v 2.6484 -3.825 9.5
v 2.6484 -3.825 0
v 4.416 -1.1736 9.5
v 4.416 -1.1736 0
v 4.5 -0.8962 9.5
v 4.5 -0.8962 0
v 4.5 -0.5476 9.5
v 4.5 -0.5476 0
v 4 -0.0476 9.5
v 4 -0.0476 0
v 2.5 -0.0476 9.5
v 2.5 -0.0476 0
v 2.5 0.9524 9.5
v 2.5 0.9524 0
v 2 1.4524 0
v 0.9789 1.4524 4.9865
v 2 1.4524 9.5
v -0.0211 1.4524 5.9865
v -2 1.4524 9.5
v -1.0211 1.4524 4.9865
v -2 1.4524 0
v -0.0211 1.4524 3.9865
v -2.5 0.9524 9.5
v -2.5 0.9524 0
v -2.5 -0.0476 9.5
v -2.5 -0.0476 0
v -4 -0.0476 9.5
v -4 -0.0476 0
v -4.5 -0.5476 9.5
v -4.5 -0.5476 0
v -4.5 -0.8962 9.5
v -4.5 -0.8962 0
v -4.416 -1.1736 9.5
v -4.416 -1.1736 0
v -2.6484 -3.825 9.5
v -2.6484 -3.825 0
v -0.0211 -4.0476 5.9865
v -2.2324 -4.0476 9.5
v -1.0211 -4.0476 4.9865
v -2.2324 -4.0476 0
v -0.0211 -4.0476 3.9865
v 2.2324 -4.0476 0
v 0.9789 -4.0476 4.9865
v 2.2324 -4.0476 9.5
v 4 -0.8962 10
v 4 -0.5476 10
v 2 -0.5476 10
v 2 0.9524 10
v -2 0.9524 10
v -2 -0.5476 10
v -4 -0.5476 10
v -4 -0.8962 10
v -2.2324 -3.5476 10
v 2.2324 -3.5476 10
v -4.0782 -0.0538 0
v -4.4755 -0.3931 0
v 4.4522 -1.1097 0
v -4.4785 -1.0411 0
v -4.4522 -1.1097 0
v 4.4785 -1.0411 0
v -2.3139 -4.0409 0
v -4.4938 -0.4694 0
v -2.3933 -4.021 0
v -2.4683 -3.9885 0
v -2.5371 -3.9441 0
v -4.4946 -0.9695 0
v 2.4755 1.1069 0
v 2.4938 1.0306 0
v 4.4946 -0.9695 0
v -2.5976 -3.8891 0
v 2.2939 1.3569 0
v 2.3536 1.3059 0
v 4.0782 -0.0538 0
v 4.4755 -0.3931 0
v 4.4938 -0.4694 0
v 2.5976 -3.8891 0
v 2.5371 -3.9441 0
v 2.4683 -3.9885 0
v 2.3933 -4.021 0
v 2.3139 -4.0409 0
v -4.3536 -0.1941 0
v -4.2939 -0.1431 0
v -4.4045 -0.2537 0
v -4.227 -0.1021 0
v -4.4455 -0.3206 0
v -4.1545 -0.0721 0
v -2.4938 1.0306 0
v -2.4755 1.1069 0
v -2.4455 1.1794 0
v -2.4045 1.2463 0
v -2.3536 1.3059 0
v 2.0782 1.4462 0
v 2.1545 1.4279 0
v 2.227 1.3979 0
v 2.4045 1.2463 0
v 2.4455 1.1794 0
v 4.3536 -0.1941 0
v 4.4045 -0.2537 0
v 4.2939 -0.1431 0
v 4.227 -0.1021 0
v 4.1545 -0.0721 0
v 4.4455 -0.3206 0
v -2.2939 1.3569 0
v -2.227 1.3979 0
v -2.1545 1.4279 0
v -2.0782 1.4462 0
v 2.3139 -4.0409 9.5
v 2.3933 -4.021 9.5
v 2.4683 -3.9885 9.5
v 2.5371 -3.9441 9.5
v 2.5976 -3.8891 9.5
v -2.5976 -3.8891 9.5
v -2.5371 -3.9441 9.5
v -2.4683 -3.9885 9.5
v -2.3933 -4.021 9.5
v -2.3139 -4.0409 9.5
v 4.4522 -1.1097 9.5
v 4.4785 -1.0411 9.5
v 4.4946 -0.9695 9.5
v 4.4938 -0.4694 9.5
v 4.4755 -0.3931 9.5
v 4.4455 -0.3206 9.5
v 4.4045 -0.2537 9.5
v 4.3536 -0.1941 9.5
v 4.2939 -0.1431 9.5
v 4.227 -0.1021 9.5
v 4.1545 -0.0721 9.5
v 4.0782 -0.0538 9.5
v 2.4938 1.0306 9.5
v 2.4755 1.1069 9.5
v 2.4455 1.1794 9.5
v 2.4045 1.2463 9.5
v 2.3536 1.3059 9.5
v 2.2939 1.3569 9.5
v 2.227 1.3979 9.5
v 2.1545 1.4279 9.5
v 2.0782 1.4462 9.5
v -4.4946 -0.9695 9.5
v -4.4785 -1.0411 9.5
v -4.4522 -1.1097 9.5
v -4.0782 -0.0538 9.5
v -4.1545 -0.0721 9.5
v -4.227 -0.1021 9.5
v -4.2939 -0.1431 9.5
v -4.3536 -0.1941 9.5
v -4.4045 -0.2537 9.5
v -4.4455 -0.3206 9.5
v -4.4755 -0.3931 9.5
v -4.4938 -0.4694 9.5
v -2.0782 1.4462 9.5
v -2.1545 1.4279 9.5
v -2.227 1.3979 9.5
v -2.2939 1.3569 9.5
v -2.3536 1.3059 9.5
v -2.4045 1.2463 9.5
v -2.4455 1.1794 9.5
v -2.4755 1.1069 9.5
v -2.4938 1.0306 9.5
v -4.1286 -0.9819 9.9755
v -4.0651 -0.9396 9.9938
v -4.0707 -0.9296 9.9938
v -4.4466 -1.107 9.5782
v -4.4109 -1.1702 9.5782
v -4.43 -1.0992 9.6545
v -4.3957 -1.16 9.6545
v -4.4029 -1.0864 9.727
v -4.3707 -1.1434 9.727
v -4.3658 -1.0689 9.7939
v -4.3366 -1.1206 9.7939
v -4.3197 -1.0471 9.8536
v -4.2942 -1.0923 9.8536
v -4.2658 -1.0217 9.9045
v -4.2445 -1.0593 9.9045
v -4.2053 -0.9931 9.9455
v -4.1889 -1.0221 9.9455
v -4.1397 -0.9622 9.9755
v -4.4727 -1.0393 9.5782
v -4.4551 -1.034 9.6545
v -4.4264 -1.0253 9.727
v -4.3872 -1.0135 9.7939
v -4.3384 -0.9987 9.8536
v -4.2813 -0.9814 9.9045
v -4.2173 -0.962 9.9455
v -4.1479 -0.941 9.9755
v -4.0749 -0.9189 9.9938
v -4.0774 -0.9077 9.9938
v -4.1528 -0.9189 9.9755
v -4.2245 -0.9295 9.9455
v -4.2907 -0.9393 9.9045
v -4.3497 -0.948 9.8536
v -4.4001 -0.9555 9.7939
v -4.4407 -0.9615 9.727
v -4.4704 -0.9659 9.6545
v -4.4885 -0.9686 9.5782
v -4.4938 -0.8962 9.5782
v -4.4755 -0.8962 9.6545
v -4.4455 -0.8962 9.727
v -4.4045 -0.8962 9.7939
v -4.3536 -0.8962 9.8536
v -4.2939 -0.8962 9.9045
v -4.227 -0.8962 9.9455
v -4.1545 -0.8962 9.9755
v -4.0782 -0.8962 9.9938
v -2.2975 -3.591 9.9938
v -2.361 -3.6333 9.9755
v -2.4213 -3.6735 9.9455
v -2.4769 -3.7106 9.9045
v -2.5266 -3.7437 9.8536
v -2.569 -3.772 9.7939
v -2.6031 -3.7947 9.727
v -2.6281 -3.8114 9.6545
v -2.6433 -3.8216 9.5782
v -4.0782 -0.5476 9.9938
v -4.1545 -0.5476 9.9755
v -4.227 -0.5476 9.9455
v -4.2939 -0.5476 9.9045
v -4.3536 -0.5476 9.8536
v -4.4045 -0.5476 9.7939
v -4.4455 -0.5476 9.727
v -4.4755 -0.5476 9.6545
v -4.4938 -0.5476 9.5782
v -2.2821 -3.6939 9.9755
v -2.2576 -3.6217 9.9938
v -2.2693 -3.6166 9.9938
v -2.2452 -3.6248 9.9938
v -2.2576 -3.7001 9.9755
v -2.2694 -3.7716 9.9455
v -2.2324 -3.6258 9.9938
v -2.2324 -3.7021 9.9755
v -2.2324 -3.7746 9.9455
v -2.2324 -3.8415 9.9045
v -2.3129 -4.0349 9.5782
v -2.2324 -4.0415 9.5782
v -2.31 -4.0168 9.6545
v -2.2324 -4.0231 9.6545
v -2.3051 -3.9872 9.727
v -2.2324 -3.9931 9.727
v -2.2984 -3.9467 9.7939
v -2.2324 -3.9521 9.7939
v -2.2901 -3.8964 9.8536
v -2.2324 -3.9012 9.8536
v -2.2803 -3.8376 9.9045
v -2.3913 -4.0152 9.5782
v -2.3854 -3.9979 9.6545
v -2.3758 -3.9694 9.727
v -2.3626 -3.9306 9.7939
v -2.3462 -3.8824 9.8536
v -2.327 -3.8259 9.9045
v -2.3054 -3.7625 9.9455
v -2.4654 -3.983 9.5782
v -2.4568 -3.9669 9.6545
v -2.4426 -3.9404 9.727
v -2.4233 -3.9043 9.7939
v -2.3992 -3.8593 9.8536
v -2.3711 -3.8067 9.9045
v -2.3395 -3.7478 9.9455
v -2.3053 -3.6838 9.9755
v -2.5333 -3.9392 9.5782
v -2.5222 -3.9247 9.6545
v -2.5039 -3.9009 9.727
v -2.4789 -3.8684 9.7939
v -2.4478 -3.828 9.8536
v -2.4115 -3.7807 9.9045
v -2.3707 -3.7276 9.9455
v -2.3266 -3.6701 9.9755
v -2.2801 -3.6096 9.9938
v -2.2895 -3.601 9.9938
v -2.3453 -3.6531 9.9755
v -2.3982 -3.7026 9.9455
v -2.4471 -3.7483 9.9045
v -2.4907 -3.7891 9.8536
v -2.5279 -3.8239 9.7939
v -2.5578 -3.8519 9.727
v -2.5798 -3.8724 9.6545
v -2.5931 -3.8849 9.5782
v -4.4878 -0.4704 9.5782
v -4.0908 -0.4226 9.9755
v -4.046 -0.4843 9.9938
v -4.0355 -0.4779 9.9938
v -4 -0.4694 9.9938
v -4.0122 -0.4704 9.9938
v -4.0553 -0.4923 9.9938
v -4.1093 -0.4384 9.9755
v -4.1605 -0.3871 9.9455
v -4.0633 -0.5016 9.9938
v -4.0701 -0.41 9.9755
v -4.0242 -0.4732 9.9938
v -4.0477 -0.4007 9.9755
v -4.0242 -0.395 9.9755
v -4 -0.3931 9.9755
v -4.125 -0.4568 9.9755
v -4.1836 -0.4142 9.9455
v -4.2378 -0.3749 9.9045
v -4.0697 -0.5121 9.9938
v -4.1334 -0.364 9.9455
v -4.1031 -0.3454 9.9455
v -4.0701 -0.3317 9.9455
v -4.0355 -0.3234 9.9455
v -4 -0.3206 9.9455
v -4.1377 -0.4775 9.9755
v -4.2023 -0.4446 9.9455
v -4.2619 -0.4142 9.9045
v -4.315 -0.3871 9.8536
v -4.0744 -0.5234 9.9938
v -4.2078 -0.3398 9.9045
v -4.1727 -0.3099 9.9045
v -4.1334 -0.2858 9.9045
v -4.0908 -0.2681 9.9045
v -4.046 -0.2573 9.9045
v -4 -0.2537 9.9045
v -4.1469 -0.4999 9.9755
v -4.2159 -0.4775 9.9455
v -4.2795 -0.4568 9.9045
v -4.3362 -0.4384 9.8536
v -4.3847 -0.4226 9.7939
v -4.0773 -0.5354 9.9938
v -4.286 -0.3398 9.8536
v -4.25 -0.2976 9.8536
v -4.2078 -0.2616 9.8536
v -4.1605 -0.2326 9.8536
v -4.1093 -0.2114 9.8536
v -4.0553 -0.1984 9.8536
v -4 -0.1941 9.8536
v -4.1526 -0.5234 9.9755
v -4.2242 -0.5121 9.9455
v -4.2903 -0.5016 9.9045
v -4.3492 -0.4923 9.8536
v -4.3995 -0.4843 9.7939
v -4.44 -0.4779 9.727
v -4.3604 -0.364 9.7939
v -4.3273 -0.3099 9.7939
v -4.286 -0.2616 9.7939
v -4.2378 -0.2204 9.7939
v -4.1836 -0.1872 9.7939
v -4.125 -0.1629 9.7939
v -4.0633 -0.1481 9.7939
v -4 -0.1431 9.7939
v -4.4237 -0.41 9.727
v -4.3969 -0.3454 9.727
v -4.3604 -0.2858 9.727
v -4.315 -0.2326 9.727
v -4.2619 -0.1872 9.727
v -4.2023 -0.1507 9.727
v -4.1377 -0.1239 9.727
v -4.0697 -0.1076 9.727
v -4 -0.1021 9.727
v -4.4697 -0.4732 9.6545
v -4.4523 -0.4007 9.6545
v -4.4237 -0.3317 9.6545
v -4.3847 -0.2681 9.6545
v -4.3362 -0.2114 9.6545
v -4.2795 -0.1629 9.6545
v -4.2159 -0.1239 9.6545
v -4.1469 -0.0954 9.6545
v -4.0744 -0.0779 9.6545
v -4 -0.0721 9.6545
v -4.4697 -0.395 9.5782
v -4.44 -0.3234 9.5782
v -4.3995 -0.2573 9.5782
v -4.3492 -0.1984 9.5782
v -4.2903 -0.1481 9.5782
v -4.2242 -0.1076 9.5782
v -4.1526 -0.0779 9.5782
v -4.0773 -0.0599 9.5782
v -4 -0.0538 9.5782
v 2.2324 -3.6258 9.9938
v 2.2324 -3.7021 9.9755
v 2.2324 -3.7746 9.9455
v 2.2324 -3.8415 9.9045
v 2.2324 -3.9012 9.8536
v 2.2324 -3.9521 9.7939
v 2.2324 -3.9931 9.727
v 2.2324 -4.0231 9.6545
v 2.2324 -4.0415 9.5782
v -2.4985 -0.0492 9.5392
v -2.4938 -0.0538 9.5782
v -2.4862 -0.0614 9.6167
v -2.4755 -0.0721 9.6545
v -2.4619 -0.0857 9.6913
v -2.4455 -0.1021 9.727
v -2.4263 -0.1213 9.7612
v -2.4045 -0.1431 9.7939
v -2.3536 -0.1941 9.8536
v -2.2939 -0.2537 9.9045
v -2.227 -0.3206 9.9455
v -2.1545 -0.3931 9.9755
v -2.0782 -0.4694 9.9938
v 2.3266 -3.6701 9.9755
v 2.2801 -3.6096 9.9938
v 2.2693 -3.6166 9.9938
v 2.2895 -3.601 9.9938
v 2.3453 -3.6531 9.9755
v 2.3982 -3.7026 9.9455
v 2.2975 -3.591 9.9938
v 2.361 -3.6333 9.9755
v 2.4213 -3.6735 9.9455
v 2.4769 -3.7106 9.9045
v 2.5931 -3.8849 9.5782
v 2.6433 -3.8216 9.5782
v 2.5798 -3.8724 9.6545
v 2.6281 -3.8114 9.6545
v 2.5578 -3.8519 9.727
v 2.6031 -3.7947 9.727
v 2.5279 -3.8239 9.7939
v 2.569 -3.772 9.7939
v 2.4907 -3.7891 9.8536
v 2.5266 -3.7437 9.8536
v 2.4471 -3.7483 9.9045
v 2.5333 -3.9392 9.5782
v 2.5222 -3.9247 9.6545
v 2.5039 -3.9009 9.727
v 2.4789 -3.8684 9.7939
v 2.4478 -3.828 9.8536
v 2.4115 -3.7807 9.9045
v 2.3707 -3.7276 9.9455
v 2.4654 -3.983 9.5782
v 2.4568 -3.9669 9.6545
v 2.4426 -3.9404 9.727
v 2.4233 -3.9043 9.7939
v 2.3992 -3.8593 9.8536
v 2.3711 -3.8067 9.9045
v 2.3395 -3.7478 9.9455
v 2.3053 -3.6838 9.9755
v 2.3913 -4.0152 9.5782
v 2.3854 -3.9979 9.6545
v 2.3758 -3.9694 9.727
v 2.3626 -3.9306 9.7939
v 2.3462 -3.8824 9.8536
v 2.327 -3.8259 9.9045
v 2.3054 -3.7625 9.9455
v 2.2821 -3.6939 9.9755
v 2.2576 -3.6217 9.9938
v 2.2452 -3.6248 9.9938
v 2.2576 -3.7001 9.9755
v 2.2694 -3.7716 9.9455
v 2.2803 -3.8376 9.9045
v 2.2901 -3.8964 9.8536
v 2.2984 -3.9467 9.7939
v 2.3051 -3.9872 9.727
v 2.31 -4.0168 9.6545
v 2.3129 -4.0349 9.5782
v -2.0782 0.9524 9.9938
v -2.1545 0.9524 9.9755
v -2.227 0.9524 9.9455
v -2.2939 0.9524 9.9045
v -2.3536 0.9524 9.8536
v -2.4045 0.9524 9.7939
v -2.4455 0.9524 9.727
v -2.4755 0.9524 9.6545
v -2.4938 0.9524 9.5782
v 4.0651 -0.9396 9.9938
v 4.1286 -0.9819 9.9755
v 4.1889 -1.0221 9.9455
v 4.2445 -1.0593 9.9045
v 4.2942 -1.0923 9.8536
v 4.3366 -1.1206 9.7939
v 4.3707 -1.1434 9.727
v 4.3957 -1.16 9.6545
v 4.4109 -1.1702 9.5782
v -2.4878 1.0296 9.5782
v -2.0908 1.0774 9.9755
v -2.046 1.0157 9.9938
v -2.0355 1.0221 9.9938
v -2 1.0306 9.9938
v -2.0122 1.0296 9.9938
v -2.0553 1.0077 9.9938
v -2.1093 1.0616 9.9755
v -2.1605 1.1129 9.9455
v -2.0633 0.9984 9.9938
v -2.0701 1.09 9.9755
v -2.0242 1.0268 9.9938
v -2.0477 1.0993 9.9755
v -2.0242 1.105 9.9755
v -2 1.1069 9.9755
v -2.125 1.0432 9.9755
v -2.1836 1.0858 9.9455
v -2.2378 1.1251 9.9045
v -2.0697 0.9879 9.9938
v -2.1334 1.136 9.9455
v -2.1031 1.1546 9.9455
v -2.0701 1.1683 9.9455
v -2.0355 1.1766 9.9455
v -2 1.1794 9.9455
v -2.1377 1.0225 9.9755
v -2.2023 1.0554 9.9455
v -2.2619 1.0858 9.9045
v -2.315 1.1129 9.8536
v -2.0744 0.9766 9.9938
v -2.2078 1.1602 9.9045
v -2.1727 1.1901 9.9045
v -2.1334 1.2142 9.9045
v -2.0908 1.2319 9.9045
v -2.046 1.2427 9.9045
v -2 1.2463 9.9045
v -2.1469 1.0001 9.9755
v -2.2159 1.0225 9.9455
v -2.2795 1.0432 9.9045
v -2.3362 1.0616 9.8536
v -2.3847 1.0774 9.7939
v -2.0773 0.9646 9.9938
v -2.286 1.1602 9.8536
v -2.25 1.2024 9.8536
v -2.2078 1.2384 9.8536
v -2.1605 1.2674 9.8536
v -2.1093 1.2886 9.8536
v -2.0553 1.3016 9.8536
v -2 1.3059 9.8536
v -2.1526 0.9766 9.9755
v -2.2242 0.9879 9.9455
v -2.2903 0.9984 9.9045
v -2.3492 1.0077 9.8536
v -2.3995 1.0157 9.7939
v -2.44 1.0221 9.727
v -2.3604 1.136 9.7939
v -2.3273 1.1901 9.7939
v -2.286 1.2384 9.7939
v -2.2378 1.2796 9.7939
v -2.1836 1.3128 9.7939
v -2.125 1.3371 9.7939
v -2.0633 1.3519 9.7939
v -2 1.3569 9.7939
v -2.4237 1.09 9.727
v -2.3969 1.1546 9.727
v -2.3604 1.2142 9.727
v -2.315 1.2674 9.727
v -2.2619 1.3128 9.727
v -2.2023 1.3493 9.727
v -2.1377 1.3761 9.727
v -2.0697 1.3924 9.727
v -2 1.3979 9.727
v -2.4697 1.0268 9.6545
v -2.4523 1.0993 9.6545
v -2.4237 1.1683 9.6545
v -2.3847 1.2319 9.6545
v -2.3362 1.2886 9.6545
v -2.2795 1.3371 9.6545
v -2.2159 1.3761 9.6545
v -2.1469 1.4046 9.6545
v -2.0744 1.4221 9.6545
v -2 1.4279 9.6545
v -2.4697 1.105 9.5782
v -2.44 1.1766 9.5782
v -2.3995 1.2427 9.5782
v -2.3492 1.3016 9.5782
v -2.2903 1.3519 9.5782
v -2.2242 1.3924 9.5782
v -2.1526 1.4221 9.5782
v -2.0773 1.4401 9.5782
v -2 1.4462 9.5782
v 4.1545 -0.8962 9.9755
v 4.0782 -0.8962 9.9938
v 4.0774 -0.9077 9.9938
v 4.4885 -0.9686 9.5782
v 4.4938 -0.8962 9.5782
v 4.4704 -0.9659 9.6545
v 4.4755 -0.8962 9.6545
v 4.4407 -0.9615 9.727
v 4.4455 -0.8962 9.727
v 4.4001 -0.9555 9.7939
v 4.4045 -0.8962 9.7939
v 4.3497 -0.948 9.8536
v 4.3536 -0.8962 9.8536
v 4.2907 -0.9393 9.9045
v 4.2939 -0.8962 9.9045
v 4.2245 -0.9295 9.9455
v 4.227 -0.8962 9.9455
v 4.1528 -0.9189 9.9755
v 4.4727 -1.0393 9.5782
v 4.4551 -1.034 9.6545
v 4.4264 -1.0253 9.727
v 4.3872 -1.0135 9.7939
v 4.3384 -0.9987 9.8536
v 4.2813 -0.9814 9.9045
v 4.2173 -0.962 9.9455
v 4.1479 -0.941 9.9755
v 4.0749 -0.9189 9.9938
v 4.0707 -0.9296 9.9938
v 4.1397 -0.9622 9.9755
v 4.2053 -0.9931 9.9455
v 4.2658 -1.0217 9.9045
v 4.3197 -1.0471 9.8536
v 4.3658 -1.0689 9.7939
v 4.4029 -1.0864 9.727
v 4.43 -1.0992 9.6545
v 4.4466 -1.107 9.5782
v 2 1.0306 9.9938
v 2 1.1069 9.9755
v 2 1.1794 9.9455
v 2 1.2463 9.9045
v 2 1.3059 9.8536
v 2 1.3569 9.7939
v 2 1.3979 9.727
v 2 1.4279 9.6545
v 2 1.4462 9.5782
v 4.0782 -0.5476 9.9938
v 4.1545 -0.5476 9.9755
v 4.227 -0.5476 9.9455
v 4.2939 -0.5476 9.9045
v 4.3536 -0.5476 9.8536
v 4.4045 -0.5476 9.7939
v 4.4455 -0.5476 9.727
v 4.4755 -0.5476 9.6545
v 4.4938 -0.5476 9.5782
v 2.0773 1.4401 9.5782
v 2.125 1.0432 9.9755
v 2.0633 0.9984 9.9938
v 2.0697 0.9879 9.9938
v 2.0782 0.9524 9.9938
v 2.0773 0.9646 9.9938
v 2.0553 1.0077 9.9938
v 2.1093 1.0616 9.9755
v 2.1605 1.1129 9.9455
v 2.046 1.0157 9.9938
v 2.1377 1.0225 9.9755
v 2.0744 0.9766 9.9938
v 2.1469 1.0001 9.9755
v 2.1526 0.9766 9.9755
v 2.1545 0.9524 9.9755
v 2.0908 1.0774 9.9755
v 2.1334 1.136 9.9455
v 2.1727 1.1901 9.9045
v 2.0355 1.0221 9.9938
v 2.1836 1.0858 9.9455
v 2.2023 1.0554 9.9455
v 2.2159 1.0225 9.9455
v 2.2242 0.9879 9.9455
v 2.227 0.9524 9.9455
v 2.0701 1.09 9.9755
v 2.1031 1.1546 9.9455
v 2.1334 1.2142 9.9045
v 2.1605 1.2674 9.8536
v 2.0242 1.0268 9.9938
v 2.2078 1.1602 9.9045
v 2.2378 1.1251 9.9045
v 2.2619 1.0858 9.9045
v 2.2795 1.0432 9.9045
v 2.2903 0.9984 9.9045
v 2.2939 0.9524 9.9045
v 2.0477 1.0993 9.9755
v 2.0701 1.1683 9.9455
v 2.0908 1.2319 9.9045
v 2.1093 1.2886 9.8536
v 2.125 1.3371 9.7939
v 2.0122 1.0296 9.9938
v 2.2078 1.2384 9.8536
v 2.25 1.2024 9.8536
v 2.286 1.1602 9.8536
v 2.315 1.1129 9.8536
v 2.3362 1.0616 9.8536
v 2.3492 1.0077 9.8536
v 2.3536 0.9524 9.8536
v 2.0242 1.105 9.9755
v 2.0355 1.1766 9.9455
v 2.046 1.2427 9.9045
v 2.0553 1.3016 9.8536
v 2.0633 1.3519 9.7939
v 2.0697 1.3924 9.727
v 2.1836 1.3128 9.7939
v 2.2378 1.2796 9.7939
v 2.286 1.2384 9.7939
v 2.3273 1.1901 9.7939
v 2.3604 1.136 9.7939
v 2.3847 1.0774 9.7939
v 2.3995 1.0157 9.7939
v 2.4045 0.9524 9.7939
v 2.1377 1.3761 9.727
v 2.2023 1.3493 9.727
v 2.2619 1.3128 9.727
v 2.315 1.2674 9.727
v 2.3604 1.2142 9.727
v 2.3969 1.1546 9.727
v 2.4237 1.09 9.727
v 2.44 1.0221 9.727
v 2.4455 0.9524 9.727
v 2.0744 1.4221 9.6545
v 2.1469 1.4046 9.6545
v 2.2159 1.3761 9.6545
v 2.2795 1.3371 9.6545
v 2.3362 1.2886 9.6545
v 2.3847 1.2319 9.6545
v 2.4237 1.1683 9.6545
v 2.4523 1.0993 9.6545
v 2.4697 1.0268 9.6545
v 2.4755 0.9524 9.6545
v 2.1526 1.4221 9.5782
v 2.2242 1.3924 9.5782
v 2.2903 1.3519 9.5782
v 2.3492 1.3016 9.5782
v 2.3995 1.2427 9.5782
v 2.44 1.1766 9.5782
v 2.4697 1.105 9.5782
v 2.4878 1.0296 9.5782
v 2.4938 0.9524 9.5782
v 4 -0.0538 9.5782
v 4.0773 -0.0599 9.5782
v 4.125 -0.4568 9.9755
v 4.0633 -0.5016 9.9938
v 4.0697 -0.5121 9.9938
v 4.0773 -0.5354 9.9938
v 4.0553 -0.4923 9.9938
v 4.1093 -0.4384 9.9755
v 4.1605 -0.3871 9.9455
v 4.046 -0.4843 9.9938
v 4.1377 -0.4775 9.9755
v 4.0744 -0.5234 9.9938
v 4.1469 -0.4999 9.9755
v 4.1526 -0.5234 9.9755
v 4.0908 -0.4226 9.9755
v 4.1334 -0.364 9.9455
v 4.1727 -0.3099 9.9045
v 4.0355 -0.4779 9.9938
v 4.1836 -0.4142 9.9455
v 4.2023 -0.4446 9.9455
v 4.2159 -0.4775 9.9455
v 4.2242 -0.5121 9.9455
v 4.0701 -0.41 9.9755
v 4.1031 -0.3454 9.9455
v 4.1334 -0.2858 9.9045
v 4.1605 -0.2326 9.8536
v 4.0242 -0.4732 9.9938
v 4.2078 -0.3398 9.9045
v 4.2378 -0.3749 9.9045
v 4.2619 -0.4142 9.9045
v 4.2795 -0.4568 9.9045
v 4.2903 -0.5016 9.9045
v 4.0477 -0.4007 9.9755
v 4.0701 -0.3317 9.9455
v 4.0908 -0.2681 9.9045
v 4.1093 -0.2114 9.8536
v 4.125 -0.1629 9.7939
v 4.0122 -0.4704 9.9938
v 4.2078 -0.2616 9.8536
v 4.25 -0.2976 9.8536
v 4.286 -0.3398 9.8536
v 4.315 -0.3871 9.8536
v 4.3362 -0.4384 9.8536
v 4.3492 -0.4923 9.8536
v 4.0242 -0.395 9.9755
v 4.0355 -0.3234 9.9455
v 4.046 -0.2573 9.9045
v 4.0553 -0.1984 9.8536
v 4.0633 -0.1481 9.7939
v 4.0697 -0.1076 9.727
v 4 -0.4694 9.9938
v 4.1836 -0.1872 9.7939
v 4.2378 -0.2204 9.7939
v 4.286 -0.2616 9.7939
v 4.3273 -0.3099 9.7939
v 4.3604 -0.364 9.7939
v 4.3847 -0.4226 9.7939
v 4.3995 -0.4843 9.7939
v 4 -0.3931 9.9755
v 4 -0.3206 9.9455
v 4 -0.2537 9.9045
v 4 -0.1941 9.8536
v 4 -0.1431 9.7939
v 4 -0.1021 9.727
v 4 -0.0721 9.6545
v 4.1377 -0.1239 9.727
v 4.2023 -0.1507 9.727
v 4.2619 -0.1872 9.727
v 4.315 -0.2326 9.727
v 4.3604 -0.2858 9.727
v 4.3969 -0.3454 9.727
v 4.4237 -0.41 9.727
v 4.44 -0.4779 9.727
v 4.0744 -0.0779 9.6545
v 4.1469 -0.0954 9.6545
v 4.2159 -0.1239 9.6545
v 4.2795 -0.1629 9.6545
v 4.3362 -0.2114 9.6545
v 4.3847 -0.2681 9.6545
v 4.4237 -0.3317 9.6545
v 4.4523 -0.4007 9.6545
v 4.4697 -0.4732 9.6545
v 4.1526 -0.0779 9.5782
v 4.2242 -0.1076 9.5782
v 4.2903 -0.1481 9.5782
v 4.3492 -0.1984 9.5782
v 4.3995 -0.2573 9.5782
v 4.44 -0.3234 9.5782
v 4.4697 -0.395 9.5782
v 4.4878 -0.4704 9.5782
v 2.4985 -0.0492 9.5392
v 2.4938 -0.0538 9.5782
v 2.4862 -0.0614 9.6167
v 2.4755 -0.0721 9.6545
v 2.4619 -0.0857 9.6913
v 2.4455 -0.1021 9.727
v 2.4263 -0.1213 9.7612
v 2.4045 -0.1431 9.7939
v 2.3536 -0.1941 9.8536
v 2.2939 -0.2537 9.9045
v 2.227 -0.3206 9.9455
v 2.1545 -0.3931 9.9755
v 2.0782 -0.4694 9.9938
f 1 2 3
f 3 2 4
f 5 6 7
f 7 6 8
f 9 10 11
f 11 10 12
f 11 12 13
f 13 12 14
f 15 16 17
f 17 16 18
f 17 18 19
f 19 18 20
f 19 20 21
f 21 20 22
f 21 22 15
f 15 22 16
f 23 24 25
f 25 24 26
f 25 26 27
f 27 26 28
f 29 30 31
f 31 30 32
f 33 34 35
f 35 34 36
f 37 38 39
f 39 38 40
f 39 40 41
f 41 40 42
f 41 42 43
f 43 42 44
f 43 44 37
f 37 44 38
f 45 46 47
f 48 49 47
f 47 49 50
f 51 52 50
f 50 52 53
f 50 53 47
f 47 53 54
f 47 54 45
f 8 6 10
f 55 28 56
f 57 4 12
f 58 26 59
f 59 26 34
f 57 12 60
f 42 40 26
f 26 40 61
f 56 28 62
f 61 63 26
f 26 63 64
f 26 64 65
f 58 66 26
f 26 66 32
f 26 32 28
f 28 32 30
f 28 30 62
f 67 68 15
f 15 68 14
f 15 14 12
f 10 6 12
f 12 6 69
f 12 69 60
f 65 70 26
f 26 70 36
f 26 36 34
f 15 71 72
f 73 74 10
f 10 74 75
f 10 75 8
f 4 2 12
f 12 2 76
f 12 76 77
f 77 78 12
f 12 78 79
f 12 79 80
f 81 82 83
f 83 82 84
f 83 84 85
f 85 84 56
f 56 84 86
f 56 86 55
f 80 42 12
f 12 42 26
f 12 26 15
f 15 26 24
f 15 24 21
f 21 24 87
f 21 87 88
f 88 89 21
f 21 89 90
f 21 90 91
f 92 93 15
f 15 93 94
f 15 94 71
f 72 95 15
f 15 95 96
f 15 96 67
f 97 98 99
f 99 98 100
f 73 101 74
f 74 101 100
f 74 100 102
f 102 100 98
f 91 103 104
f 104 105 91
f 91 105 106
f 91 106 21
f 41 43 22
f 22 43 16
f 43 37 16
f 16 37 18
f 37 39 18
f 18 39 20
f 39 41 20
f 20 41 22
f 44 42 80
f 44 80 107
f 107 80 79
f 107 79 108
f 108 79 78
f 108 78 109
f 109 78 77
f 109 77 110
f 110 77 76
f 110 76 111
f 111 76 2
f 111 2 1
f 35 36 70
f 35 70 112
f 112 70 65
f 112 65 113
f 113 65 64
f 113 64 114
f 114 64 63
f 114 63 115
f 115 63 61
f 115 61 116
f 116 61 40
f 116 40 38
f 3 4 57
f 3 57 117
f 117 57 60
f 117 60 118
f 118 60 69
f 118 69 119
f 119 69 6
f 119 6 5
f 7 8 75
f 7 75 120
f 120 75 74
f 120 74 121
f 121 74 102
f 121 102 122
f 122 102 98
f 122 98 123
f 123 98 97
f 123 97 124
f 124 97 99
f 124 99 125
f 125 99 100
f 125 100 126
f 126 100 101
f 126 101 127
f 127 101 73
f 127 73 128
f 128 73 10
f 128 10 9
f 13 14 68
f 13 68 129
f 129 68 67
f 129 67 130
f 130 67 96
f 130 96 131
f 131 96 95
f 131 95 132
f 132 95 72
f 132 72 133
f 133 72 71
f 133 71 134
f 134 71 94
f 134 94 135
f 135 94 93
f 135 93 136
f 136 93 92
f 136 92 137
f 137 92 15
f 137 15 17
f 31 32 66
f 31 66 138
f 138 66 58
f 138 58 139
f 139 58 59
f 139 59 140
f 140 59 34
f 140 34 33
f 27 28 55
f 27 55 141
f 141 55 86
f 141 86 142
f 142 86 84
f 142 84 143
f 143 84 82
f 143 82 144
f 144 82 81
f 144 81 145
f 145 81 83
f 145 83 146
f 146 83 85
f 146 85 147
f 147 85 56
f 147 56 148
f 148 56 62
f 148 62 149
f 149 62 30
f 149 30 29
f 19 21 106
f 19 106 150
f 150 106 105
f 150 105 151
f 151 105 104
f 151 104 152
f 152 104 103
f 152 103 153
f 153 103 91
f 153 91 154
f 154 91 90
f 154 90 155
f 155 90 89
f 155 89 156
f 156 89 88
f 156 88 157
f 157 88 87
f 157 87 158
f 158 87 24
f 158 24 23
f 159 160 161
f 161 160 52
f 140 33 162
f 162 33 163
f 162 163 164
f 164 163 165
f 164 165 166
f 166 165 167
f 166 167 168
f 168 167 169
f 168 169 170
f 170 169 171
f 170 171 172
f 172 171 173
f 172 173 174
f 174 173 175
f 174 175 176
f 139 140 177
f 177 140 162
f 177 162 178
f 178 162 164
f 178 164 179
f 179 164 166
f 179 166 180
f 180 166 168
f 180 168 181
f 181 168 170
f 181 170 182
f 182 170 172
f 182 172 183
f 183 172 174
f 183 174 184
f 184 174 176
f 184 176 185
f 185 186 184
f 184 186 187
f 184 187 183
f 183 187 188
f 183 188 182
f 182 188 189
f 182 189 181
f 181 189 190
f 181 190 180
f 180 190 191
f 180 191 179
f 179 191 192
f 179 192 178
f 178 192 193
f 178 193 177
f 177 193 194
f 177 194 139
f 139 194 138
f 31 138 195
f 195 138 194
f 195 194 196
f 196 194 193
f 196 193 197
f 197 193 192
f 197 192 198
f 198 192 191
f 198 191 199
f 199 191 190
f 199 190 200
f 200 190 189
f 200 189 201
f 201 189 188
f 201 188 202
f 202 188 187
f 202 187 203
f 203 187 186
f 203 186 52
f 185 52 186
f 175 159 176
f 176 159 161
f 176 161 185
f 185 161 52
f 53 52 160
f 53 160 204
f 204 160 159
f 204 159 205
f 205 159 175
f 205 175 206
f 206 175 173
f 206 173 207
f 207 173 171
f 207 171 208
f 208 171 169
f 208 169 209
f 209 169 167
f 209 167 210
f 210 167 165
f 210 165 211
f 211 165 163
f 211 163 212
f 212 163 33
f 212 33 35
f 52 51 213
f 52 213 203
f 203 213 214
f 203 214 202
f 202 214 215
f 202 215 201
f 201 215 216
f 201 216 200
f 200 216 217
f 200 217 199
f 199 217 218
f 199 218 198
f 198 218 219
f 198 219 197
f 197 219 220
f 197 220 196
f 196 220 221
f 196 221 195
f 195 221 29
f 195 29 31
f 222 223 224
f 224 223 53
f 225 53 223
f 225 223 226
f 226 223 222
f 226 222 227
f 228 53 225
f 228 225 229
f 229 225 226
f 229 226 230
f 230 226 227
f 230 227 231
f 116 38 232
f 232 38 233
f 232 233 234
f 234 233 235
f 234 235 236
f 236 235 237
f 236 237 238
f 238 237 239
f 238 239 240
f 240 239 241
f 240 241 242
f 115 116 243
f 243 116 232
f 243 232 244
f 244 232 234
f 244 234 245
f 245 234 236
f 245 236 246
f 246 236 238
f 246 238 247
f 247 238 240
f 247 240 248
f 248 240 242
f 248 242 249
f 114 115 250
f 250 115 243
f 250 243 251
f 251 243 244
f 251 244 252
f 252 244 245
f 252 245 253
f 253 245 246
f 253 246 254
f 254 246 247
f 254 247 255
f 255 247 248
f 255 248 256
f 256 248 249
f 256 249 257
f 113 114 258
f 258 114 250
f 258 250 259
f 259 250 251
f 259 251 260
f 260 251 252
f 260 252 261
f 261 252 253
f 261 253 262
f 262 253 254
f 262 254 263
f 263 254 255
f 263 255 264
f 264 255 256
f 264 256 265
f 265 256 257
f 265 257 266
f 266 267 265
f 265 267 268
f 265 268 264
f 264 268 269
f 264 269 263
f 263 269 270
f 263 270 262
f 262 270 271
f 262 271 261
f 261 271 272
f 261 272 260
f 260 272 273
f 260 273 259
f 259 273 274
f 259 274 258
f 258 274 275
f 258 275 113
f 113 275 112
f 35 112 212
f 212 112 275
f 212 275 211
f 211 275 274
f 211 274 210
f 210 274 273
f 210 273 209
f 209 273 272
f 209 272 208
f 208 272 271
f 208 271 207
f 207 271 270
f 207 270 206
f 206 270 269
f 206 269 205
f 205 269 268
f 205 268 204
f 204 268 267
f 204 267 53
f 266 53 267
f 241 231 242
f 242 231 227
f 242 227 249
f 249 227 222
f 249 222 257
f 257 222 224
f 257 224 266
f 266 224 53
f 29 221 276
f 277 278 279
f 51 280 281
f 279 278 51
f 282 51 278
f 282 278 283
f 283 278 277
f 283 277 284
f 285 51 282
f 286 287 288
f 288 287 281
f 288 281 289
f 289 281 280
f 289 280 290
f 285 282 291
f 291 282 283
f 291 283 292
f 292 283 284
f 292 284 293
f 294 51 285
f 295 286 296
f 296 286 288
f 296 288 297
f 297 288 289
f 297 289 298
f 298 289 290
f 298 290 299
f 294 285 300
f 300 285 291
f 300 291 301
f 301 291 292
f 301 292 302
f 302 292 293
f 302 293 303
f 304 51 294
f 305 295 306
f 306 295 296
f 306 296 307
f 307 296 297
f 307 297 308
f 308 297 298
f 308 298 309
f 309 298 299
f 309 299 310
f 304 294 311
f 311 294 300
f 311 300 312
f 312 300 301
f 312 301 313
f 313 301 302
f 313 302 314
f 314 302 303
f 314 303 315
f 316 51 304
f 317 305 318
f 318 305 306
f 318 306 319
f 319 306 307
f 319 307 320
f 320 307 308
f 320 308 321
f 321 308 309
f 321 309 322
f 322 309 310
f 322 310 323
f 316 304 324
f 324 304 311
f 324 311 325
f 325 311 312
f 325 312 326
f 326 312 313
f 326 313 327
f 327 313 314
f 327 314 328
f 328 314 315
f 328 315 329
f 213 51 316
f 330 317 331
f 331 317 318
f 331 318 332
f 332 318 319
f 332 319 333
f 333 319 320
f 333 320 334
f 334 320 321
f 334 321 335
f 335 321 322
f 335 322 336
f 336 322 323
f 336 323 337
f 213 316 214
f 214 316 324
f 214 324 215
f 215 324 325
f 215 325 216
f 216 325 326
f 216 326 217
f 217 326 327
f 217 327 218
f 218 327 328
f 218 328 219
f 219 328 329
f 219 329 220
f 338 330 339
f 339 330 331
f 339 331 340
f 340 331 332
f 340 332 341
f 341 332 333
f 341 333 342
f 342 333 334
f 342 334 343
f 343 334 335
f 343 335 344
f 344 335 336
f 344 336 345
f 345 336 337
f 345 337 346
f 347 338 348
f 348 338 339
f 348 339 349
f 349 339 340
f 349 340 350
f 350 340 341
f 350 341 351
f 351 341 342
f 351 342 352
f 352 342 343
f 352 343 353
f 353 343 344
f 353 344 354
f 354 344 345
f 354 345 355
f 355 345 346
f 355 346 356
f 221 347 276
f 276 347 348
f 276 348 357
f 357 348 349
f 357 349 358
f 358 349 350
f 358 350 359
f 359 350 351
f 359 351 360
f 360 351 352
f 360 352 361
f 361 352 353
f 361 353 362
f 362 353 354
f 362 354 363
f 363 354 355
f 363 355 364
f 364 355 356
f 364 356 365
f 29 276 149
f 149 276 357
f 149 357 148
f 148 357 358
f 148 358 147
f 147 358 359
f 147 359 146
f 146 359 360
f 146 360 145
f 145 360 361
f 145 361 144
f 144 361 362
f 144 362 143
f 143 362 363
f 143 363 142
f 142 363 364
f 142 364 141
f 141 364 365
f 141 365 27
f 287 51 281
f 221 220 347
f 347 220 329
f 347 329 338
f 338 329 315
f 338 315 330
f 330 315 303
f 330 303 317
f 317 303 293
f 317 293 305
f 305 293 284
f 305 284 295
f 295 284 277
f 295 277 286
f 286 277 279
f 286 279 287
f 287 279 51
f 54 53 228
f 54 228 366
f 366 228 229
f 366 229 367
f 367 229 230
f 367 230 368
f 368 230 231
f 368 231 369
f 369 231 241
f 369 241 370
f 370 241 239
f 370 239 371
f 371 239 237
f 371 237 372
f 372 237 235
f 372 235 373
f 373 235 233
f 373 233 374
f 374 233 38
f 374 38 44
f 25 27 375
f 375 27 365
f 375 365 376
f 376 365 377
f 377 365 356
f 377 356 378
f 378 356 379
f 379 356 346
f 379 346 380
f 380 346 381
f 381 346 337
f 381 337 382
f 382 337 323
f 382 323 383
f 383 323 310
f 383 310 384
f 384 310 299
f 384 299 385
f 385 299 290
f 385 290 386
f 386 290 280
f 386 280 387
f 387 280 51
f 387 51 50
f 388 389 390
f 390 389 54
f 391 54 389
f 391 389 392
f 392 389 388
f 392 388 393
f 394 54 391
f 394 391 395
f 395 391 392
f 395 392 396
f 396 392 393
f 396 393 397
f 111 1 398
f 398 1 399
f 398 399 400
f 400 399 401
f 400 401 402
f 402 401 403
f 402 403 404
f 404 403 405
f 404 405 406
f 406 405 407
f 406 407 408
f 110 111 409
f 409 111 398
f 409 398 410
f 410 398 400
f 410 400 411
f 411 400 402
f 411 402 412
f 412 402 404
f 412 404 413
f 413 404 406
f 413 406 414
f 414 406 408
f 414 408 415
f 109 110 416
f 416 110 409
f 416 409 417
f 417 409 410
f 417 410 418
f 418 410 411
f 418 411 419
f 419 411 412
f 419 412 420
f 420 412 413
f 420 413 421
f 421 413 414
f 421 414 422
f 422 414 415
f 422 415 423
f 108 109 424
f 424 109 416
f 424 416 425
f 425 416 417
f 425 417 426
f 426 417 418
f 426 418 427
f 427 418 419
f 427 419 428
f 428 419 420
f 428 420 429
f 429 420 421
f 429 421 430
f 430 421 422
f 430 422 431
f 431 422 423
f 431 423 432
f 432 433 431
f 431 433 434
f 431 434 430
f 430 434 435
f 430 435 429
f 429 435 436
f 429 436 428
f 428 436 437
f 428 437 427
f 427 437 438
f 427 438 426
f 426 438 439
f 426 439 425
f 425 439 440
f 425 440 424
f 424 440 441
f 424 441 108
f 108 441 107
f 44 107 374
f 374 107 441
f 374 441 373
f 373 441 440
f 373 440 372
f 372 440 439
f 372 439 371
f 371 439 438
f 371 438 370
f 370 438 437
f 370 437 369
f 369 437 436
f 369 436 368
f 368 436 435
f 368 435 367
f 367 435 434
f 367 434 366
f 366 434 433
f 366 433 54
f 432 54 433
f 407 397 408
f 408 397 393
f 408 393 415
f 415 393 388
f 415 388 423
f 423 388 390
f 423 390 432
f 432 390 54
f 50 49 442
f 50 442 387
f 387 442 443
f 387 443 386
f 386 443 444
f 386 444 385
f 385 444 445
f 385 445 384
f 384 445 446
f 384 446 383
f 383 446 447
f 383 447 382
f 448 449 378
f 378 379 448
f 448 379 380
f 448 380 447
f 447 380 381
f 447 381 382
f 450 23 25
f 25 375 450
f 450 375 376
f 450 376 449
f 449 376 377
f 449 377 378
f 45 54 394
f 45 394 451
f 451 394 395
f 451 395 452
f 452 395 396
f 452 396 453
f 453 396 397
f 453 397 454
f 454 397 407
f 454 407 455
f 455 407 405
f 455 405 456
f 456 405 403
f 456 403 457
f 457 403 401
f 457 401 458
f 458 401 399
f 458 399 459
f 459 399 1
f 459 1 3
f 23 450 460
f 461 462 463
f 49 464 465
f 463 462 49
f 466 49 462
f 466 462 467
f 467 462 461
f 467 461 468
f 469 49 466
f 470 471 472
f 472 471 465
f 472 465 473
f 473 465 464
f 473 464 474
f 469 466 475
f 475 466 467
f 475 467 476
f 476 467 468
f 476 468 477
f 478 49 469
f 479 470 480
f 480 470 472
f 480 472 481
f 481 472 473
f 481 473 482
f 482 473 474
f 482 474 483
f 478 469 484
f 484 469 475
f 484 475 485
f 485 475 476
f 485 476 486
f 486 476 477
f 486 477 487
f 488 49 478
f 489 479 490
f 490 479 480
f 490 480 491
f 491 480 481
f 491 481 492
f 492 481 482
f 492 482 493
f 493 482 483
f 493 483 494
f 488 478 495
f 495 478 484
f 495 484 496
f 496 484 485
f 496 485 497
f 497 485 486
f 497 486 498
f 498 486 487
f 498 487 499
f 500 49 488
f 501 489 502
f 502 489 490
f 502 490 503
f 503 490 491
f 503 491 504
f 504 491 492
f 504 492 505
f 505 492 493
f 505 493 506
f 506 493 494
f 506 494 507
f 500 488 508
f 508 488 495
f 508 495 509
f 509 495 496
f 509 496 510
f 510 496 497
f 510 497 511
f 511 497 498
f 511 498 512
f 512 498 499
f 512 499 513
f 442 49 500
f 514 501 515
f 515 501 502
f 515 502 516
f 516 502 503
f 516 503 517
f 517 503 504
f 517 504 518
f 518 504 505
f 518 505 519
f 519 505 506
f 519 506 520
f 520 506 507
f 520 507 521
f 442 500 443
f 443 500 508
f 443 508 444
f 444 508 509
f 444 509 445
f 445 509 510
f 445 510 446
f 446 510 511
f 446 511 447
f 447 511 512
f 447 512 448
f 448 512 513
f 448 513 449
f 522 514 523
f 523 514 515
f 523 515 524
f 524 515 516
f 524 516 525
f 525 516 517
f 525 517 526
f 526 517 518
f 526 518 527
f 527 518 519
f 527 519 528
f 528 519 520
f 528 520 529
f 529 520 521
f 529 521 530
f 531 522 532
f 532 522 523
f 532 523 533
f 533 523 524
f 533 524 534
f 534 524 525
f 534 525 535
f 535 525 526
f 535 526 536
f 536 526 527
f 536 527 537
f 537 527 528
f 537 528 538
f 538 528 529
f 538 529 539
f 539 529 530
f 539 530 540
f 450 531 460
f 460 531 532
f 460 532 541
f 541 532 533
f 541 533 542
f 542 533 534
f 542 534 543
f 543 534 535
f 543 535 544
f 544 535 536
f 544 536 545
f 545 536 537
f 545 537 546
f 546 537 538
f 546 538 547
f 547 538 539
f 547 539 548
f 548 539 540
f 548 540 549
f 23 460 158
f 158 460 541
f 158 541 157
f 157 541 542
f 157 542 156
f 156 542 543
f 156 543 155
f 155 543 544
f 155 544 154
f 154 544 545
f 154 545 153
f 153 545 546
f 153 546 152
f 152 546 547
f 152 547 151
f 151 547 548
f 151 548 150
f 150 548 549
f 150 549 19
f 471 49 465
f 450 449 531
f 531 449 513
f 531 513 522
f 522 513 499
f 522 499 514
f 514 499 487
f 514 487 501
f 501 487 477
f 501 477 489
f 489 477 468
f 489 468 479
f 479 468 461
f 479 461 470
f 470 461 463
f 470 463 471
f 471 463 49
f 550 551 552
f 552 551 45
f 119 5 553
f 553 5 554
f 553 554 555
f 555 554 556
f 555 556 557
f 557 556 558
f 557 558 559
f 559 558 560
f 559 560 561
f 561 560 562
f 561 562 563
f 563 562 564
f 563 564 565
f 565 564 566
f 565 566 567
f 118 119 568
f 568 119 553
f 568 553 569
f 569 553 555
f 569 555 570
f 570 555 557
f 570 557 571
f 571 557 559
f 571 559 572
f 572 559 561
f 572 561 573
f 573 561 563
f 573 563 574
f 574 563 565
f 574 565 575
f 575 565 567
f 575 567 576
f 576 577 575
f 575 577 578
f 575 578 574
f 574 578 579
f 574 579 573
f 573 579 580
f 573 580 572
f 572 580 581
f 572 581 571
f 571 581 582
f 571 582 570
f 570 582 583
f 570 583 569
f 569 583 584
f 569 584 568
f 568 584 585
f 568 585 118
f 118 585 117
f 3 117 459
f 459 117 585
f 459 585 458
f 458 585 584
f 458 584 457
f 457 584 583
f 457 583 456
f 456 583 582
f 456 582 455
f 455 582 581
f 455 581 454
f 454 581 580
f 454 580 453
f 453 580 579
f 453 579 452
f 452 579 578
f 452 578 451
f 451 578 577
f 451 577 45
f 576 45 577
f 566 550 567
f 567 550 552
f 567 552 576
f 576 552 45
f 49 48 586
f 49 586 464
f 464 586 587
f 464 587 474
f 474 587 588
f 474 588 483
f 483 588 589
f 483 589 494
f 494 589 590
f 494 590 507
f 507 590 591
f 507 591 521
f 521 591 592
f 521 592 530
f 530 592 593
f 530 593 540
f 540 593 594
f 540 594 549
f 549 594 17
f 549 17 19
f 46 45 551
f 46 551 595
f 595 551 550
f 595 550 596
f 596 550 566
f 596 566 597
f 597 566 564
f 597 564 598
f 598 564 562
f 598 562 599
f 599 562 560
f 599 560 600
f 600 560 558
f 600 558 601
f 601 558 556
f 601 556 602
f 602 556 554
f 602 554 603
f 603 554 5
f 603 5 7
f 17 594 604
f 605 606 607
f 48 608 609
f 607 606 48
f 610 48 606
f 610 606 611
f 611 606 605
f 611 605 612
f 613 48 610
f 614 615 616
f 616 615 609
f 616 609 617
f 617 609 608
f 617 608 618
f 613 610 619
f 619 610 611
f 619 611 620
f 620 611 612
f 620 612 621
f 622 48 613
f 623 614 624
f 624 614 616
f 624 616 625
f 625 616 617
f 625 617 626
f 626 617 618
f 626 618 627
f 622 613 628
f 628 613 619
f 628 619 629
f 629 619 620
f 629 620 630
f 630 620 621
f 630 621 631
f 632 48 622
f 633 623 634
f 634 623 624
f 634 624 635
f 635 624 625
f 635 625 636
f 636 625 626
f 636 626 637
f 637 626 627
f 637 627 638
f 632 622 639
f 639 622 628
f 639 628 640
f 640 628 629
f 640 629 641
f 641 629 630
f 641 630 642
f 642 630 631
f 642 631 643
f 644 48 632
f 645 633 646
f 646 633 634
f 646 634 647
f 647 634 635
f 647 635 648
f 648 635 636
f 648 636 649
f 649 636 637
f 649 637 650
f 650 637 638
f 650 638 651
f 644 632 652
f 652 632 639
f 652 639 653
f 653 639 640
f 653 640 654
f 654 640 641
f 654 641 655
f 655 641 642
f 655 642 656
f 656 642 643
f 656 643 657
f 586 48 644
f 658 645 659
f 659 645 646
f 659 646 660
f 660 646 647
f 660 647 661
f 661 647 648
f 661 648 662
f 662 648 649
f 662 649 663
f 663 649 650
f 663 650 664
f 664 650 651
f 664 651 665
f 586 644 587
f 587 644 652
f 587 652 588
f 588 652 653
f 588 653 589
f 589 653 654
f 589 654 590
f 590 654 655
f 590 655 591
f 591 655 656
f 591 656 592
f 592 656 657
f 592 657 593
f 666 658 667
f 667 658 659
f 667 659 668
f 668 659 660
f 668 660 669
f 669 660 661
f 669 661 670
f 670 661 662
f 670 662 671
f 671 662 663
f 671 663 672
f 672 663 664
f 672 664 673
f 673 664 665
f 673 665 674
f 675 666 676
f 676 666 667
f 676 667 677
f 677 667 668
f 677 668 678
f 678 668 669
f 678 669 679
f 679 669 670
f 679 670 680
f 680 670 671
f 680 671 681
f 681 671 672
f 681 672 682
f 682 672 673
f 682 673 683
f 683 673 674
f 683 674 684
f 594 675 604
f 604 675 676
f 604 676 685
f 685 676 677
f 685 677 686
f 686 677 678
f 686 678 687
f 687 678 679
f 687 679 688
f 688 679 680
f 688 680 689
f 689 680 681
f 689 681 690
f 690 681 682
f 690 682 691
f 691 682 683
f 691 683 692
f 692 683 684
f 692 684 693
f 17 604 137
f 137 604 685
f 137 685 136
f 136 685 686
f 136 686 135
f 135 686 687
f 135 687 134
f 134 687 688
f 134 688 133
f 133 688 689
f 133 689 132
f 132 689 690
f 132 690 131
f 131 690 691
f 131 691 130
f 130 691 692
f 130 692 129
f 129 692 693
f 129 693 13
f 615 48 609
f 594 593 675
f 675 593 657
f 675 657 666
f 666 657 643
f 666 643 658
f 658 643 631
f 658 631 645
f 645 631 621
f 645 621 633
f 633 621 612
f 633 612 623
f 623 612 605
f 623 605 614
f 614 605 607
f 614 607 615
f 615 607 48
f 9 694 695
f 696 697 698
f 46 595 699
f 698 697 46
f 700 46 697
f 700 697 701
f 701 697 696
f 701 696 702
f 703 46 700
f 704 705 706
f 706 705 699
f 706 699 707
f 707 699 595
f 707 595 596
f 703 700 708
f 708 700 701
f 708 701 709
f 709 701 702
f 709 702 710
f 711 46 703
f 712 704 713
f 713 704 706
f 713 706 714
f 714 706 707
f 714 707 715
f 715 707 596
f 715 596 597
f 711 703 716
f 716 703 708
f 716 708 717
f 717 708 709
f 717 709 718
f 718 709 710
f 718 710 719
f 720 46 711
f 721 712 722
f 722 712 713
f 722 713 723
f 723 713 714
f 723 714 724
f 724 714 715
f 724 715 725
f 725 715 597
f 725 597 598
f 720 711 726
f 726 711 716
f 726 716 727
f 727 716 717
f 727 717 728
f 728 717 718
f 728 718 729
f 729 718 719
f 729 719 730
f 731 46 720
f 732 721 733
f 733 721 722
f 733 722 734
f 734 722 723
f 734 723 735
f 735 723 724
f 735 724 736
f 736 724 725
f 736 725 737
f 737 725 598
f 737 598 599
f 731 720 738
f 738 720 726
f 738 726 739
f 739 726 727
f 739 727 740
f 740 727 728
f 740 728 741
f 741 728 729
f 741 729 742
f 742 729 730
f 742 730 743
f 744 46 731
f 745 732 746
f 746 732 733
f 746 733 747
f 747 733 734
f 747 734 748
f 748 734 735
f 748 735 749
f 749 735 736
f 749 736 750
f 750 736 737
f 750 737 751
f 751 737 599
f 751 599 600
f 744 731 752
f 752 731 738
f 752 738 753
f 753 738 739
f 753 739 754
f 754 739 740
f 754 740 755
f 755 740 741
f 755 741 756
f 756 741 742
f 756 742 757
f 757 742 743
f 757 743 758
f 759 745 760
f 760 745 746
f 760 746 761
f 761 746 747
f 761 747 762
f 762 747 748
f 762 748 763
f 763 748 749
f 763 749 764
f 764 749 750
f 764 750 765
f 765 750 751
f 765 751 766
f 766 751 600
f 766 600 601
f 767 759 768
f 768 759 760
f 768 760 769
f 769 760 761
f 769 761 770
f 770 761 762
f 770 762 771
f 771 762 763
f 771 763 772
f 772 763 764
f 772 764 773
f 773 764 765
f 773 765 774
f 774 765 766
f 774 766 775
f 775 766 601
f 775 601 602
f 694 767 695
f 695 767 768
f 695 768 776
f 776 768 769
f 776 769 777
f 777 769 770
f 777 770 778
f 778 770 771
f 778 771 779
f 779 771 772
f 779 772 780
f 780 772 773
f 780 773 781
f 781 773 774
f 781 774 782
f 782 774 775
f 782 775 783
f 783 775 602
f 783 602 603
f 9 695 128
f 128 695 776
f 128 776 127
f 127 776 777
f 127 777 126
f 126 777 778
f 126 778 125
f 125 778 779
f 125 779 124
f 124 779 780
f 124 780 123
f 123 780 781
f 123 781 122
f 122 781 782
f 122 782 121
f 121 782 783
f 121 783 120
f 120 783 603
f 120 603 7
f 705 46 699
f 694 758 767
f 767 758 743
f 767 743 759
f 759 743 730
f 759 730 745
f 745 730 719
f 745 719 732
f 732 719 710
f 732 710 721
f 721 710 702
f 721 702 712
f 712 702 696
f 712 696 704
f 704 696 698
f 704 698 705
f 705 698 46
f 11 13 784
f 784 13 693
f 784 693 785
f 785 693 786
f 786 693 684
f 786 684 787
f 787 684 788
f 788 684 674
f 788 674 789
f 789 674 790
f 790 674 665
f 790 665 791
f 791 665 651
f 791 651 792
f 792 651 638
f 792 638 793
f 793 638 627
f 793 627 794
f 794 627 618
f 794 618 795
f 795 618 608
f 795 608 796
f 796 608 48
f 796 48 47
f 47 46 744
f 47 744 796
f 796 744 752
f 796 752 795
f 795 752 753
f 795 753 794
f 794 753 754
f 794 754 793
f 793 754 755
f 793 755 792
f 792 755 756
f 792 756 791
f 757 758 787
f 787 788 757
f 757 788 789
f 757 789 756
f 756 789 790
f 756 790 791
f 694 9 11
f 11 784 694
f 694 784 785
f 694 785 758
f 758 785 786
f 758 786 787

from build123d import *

# Parameters (mm, degrees)
BOSS_EXTRUDE1_DEPTH = 10
CUT_EXTRUDE2_DEPTH  = 6.5
FILLET1_R           = 0.5
FILLET2_R           = 0.5


with BuildPart() as part:
    # Sketch1 → Boss-Extrude1 (new body)
    with BuildSketch(Plane.XY):
        Polygon((-2.5, -4.047619048), (2.5, -4.047619048), (4.5, -1.047619048), (4.5, -0.047619048), (2.5, -0.047619048), (2.5, 1.452380952), (-2.5, 1.452380952), (-2.5, -0.047619048), (-4.5, -0.047619048), (-4.5, -1.047619048), align=None)
    extrude(amount=BOSS_EXTRUDE1_DEPTH)

    # Sketch4 → Cut-Extrude2 (cut, through all)
    with BuildSketch(Plane(origin=(0, 1.452380952, 0), x_dir=(1, 0, 0), z_dir=(0, 1, 0))):
        Polygon((-1.021105314, -4.986458601), (-0.021105314, -3.986458601), (0.978894686, -4.986458601), (-0.021105314, -5.986458601), align=None)
    extrude(amount=-CUT_EXTRUDE2_DEPTH, mode=Mode.SUBTRACT)

    # Fillet1
    fillet1_edges = [part.edges().sort_by_distance(p)[0] for p in [
        (2.5, -4.047619048, 5),
        (-2.5, -4.047619048, 5),
        (-4.5, -1.047619048, 5),
        (-4.5, -0.047619048, 5),
        (-2.5, 1.452380952, 5),
        (2.5, 1.452380952, 5),
        (4.5, -0.047619048, 5),
        (4.5, -1.047619048, 5),
    ]]
    fillet(fillet1_edges, radius=FILLET1_R)

    # Fillet2
    fillet2_edges = [part.edges().sort_by_distance(p)[0] for p in [
        (2.5, 0.452380952, 10),
        (-3.25, -0.047619048, 10),
        (3.532229208, -2.499275236, 10),
        (0, -4.047619048, 10),
        (4.5, -0.721925138, 10),
        (3.25, -0.047619048, 10),
        (0, 1.452380952, 10),
        (-2.5, 0.452380952, 10),
        (-4.5, -0.721925138, 10),
        (-3.532229208, -2.499275236, 10),
        (-2.353553391, 1.305934343, 10),
        (-4.353553391, -0.194065657, 10),
        (-4.478546013, -1.041123303, 10),
        (2.353553391, 1.305934343, 10),
        (4.353553391, -0.194065657, 10),
        (4.478546013, -1.041123303, 10),
        (-2.468337084, -3.988456347, 10),
        (2.468337084, -3.988456347, 10),
    ]]
    fillet(fillet2_edges, radius=FILLET2_R)


solid = part.part
